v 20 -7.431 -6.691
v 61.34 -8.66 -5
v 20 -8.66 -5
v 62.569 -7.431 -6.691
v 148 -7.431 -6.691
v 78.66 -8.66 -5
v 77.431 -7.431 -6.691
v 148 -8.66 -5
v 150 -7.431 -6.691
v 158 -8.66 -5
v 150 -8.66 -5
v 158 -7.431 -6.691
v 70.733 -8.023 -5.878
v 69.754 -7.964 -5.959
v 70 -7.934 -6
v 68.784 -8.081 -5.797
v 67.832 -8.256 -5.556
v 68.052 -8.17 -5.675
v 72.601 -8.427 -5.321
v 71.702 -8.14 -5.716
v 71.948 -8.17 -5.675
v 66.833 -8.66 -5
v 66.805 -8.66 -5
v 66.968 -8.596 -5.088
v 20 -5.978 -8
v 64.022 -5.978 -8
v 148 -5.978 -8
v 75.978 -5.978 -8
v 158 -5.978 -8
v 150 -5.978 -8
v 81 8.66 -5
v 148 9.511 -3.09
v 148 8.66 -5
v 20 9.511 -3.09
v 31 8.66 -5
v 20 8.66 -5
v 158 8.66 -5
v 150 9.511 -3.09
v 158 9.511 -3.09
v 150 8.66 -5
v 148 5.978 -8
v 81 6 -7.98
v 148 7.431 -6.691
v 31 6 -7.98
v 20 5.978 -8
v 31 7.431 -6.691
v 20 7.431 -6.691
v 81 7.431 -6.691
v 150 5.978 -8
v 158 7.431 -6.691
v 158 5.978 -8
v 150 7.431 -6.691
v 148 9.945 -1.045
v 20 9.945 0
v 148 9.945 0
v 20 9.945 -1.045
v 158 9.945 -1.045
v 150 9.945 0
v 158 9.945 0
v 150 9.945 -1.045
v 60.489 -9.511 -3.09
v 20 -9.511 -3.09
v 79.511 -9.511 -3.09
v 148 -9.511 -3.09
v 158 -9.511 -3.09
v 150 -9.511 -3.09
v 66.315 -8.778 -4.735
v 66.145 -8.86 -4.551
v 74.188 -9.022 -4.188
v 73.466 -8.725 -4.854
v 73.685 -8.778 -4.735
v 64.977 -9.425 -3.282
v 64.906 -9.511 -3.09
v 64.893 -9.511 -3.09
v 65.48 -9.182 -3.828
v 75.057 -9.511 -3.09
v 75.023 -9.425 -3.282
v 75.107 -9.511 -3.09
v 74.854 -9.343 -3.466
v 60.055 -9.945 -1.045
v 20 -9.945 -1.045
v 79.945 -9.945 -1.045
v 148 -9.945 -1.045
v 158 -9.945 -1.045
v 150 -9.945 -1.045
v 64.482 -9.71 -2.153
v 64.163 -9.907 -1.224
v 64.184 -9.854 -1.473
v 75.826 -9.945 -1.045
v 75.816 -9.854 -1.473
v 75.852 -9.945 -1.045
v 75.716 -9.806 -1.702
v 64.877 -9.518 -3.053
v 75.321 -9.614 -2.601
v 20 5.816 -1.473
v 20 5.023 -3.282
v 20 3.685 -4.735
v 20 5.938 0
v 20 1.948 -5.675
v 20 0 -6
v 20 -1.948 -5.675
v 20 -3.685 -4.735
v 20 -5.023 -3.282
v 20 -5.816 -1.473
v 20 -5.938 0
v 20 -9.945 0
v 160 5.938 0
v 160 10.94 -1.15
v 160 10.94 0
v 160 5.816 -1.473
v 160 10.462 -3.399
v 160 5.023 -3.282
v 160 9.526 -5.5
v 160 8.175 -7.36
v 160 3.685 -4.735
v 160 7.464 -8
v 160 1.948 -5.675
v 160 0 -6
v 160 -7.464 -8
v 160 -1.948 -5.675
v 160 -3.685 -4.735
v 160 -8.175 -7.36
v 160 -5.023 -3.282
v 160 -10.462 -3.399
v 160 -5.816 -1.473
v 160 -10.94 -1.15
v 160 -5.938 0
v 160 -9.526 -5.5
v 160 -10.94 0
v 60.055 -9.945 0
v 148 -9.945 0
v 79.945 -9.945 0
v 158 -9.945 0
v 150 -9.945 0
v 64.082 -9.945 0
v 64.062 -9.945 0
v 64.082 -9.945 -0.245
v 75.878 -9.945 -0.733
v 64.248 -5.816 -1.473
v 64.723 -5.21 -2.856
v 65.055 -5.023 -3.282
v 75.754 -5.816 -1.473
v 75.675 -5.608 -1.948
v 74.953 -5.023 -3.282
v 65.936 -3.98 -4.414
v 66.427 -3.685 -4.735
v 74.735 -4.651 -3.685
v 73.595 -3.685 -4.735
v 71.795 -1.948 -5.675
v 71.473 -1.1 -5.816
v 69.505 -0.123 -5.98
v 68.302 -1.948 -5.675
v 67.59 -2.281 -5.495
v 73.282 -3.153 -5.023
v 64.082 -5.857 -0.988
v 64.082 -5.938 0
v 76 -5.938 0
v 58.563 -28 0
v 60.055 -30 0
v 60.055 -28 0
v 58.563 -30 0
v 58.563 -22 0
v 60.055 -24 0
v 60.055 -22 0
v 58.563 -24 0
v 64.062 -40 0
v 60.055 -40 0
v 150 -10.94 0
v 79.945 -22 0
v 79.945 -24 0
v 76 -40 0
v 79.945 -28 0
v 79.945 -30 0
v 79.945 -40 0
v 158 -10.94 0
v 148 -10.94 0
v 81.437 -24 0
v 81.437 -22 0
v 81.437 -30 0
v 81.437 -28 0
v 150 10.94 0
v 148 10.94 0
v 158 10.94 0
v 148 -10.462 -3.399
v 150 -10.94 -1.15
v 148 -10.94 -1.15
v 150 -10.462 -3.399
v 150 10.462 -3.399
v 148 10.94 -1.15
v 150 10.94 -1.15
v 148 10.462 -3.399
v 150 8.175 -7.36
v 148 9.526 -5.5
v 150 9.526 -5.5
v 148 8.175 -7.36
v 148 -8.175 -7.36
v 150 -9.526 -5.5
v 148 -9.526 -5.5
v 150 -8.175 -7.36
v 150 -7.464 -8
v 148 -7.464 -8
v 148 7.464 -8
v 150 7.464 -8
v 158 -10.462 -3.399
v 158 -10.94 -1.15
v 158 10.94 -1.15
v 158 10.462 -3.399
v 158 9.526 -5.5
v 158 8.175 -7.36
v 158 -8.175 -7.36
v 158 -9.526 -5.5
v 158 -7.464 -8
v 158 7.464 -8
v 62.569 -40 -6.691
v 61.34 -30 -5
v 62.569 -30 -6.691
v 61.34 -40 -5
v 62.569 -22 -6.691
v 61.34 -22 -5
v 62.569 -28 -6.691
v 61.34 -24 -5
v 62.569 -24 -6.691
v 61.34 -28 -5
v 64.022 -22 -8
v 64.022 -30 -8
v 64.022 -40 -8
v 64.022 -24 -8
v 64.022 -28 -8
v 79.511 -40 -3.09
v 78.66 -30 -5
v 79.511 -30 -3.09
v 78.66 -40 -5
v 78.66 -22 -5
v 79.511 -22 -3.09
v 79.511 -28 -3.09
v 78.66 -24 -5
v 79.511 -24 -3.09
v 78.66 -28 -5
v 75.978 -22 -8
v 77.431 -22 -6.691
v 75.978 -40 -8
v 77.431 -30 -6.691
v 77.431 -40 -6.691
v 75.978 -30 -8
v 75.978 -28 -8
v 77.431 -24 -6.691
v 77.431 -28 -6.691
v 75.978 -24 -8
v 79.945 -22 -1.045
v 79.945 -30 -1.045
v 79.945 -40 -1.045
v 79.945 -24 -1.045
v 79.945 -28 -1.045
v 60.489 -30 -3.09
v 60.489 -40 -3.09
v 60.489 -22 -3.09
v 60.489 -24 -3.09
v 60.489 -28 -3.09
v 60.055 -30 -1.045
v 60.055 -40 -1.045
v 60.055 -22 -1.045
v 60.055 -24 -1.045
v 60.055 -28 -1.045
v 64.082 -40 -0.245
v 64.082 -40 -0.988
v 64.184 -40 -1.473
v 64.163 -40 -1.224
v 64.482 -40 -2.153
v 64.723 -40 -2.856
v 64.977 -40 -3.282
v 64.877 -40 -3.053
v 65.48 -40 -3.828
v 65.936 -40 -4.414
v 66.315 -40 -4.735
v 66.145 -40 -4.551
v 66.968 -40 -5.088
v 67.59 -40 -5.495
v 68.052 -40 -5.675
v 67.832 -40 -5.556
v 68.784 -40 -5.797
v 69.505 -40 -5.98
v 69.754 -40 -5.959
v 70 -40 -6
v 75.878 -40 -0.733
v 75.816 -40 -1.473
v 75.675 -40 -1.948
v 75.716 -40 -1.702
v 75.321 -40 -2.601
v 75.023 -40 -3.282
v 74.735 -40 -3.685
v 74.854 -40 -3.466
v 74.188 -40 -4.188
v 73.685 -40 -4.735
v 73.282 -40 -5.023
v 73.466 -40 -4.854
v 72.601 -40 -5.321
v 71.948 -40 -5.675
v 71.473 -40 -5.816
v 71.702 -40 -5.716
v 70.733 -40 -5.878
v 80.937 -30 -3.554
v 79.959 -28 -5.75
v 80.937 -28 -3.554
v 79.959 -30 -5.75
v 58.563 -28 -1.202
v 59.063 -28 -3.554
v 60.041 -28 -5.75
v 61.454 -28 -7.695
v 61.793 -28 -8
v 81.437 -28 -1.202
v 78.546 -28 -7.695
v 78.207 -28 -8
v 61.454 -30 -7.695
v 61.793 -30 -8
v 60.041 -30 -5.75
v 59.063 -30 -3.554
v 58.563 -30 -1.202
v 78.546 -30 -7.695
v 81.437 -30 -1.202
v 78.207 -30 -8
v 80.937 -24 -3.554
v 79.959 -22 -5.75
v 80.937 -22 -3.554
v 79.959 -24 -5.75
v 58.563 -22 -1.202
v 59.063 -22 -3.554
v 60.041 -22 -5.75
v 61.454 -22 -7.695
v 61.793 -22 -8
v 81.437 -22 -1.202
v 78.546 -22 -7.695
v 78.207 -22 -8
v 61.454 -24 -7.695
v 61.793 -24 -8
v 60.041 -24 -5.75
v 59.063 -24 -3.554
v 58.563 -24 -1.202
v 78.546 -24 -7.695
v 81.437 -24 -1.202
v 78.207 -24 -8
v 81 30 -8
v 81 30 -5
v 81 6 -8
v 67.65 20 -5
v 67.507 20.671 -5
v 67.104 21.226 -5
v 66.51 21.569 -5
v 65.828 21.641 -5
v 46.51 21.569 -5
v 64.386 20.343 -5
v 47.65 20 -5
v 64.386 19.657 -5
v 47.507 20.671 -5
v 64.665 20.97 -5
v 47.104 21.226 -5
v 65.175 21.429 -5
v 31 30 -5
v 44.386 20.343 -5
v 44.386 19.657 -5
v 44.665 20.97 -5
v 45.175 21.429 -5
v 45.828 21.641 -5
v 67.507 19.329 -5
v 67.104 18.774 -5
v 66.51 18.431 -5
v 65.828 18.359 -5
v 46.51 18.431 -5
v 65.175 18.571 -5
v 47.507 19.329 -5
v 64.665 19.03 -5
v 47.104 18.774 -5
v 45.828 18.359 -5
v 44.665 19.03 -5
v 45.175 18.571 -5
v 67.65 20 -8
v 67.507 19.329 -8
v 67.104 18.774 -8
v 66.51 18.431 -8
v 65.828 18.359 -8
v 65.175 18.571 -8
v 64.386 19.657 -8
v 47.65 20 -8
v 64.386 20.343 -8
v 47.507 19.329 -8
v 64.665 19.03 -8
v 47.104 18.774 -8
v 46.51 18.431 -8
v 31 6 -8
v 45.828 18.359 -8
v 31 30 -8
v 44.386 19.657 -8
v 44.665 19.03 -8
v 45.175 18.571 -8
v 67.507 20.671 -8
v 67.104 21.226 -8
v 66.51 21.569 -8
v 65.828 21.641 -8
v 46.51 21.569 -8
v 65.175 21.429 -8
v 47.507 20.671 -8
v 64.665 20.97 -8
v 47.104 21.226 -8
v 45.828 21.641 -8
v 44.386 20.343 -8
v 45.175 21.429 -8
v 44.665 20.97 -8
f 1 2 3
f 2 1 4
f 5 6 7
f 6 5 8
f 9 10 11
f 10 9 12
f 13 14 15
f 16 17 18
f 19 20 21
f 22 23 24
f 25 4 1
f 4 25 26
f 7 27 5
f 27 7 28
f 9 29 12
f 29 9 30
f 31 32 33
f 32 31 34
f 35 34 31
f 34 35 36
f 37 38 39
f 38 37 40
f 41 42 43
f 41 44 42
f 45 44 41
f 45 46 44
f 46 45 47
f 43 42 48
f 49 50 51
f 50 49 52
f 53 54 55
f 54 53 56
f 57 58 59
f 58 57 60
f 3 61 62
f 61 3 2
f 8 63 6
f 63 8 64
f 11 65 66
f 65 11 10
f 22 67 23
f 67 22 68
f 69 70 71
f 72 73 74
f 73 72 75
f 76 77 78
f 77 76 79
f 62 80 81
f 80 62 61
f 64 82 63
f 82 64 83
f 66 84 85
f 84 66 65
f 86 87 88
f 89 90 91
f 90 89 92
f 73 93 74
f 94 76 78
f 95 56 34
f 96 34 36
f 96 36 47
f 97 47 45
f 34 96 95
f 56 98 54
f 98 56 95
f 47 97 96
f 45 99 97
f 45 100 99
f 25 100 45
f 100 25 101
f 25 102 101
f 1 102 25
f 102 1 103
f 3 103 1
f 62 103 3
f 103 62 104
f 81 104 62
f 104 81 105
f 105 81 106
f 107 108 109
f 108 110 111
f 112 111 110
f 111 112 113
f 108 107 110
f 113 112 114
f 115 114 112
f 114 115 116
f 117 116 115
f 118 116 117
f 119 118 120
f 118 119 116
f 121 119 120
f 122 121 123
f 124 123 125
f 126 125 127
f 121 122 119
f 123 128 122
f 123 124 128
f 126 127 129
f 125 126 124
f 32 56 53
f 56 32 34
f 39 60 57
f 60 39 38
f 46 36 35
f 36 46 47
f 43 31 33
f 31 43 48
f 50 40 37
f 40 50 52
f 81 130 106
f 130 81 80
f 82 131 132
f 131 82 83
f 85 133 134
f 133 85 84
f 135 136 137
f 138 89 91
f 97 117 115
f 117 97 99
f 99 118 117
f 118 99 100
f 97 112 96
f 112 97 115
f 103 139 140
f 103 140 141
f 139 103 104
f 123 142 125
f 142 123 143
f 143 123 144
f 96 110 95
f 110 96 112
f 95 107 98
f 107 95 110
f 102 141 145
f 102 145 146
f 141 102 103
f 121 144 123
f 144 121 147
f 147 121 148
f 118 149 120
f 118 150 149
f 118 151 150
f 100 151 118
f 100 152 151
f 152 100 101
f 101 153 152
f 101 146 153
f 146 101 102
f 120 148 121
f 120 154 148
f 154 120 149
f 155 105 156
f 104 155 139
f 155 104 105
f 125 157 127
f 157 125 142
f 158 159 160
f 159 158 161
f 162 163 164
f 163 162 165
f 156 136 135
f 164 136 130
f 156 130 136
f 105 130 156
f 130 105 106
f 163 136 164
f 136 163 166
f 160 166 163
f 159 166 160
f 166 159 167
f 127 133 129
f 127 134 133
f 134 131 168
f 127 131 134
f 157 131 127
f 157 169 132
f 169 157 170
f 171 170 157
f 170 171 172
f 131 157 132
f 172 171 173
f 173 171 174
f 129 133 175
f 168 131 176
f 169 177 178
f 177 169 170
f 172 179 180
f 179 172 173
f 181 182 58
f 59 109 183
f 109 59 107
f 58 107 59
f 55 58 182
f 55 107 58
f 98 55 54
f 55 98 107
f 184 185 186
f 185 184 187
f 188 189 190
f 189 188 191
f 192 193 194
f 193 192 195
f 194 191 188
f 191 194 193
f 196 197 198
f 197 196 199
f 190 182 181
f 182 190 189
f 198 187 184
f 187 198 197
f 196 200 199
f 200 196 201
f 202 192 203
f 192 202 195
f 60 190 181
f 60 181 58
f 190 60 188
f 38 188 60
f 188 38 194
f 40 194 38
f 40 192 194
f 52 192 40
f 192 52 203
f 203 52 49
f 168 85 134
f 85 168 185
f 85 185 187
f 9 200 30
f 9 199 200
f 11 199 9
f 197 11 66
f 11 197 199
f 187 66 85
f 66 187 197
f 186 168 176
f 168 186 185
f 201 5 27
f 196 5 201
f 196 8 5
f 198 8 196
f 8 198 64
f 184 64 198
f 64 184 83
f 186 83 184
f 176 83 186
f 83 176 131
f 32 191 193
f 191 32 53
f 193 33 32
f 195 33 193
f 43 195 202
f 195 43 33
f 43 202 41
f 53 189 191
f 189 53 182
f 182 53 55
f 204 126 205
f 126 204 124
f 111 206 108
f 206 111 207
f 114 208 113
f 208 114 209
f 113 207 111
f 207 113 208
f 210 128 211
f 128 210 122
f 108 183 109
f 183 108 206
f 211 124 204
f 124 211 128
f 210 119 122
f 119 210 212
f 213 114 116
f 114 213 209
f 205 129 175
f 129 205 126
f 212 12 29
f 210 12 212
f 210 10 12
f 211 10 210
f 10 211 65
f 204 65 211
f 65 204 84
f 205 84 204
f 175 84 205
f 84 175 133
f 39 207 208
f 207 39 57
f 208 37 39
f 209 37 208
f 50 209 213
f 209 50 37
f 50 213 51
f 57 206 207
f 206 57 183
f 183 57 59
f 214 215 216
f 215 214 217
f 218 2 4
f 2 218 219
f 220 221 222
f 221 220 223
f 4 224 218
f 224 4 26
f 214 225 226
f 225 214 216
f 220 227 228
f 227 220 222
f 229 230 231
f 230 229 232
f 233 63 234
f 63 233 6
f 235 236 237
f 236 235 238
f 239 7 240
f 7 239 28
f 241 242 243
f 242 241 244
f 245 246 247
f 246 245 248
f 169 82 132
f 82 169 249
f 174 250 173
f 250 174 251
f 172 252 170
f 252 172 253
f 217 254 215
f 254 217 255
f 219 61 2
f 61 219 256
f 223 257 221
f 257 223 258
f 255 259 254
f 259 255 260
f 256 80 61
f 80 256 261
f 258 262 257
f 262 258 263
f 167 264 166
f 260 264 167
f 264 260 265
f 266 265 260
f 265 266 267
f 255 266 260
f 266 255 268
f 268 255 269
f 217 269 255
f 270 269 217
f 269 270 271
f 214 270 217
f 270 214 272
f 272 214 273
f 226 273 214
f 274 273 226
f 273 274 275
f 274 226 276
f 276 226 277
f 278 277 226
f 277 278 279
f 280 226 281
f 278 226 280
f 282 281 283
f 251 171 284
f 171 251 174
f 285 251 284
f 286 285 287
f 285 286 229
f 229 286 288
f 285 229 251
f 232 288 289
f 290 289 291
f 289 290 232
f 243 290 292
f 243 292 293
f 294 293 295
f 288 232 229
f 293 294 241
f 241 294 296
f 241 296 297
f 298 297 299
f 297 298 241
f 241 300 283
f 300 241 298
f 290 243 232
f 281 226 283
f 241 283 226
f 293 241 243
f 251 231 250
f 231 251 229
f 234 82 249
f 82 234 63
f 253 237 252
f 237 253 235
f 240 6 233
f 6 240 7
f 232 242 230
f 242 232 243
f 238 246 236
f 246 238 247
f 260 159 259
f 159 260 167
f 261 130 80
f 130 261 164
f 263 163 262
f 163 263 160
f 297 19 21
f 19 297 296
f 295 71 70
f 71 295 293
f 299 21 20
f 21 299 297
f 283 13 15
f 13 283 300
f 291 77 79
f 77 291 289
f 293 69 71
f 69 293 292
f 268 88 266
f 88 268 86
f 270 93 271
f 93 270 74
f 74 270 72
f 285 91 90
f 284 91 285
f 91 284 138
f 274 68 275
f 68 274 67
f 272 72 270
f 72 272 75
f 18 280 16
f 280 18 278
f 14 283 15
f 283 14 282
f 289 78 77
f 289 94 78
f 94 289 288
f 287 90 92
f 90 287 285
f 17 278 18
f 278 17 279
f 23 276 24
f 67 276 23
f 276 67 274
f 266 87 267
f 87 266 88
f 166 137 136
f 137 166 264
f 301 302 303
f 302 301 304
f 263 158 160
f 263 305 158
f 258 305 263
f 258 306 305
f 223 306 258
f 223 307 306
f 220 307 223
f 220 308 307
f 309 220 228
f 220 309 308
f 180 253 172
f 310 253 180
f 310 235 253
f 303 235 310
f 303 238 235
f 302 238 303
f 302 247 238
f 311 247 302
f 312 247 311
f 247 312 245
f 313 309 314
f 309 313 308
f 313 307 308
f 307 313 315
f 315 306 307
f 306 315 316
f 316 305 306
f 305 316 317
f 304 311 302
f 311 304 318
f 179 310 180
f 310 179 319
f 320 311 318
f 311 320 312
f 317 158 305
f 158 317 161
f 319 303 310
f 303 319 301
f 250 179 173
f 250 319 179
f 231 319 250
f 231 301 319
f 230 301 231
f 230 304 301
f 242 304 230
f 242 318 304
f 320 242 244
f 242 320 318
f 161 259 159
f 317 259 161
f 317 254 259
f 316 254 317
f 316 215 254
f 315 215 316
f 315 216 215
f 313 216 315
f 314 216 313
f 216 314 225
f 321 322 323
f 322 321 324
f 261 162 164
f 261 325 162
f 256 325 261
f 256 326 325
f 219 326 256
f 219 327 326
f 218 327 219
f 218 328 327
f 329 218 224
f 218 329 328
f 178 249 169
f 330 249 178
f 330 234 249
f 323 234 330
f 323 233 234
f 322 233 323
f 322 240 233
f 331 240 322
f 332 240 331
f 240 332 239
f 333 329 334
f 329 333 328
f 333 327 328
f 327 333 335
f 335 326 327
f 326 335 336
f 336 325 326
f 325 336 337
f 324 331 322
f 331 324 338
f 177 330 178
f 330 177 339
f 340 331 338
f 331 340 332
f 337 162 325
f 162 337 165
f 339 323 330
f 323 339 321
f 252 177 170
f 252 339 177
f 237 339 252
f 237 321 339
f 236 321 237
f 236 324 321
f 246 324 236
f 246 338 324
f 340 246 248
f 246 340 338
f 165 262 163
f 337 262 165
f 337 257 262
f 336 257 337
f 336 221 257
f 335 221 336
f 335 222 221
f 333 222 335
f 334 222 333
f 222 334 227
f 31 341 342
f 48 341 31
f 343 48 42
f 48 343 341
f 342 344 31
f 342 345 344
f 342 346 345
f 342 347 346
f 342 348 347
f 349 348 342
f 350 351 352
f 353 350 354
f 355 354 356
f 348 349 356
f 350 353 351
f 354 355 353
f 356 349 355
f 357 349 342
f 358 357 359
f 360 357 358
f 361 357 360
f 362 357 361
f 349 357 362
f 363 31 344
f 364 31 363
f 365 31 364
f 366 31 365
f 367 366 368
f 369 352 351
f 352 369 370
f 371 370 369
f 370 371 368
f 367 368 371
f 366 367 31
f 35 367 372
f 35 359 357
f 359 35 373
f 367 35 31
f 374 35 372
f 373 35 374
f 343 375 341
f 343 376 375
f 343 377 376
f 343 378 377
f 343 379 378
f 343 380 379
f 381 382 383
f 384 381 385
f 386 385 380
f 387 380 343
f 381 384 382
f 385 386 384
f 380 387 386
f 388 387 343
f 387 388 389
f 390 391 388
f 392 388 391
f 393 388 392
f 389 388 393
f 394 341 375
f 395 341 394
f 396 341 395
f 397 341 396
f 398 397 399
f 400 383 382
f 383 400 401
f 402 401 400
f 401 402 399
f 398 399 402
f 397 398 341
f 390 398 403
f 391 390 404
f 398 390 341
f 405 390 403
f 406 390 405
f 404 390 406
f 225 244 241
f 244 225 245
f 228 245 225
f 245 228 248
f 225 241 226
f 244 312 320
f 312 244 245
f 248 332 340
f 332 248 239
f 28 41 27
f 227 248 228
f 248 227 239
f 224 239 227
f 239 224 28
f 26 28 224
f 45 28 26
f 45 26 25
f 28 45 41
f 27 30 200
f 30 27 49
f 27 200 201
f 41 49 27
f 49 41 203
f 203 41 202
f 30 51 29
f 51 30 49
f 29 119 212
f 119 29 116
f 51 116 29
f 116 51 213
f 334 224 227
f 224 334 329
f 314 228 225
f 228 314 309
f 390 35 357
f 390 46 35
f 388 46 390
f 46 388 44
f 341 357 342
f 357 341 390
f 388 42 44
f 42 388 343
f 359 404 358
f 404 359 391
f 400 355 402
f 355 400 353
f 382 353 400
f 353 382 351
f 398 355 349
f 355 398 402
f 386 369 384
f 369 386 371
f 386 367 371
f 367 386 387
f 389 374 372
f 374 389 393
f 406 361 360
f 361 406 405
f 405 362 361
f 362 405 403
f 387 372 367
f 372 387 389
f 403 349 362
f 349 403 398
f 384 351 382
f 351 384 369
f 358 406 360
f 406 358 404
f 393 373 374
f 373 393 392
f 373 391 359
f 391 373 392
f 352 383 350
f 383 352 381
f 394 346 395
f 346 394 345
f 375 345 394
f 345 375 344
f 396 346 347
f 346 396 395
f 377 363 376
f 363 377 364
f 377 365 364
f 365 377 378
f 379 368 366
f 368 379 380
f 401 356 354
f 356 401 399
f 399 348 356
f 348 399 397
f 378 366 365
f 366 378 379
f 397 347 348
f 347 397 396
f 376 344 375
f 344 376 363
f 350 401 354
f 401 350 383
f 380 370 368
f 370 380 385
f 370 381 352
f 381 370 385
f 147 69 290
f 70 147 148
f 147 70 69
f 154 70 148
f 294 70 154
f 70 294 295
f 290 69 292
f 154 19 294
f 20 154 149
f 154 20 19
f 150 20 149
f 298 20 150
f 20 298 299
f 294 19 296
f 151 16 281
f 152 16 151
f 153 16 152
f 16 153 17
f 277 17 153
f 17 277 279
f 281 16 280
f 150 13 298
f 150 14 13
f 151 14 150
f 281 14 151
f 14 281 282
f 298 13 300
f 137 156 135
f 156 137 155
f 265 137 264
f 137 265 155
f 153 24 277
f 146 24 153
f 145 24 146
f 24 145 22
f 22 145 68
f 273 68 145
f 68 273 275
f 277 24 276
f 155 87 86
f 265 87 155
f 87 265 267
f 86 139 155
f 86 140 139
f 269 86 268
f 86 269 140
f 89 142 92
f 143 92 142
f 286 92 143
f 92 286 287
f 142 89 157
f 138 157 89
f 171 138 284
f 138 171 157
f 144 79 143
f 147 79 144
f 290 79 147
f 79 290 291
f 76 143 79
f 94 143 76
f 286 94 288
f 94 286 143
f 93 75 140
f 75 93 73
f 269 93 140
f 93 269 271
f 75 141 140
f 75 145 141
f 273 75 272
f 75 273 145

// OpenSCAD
// file: ../lib/common_wire_mount.scad
/* Common code for wiring mounts. See top_wire_mount.scad and 
 * bottom_wire_mount.scad for the model.
 * Copyright 2021 Alex Volkov <alex@flamy.ca>
 * License: Attribution-ShareAlike 4.0 International (CC BY-SA)
 * https://creativecommons.org/licenses/by-sa/4.0/
 *
 * Version 1.0 2021-04-10 Initial publication
 */


m3_bolt_d = 3.3;

module cable_mount(cable_len, out_d, in_d){
    rotate([0, 90, 0 ]){
    difference(){
        cylinder(d=out_d, h=cable_len);
        cylinder(d=in_d, h=cable_len);
        translate([-out_d/2, 0, cable_len/2])
            cube([out_d, out_d, cable_len], center=true);
        }
    }
}


module plate_mount_top(y_offset, thickness=2){
    difference(){
        translate([-5, 0, 0]){
            cube([50, 25, thickness]);
            cube([15, 7, thickness*2]);
            translate([35, 0, 0, ])
                cube([15, 7, thickness*2]);
        }
        translate([10, y_offset, 0])
            cylinder(d=m3_bolt_d, h=10, $fn=15);
        translate([30, y_offset, 0])
            cylinder(d=m3_bolt_d, h=10, $fn=15);
    }
    
}

module plate_mount(y_offset, thickness=2){
    difference(){
        translate([-5, 0, 0]) cube([50, 24, thickness]);
        translate([10, y_offset, 0])
            cylinder(d=m3_bolt_d, h=10, $fn=15);
        translate([30, y_offset, 0])
            cylinder(d=m3_bolt_d, h=10, $fn=15);
    }
    
}
// main file
/* Bottom wire mount for MKS GEN 1.4 for wiring heated bed and power cables
 * Copyright 2021 Alex Volkov <alex@flamy.ca>
 * License: Attribution-ShareAlike 4.0 International (CC BY-SA)
 * https://creativecommons.org/licenses/by-sa/4.0/
 *
 * Version 1.0 2021-04-10 Initial publication
 */
 
include <../lib/common_wire_mount.scad>



module bottom_wire_holder(){
    inner_pipe_d = 12;
    outer_d = 20;
    vert_pipe_offset = 70;
    vert_pipe_len = 40;
    heated_bed_connector = 160;
    heated_bed_conn_offset = 20;
    bottom_shave_offset = 2;
    difference(){
        union(){
            translate([heated_bed_conn_offset, 0, 0])
                cable_mount(
                    heated_bed_connector - heated_bed_conn_offset,
                    outer_d,
                    inner_pipe_d);
            translate([heated_bed_connector - 12, 0, 0])
                cable_mount(2, outer_d+2, inner_pipe_d);
            translate([heated_bed_connector - 2 , 0, 0])
                cable_mount(2, outer_d+2, inner_pipe_d);
            // vertical pipe #1
            translate([vert_pipe_offset, 0 , 0]){
                rotate([0,0,270]){
                    cable_mount(vert_pipe_len, outer_d , inner_pipe_d);
                    translate([28, 0, 0])
                        cable_mount(2, outer_d + 3, inner_pipe_d + 5);
                    translate([22, 0, 0])
                        cable_mount(2, outer_d + 3, inner_pipe_d + 5);
                }
            }
            translate([36, 6, -outer_d/2 + 2])
                plate_mount(14, 3);
        }
        // horizontal cutout
        rotate([0, 90, 0 ])
            cylinder(d=inner_pipe_d, h=heated_bed_connector);
        // vertical pipe cutout #1
        translate([vert_pipe_offset, 0, 0])
            rotate([90, 0, 0 ])
                cylinder(d=inner_pipe_d, h=vert_pipe_len);
        //shave off bottom
        
        translate([0, -70, -outer_d + bottom_shave_offset])
            cube([heated_bed_connector, 100, 10]);
        
    }
}

bottom_wire_holder();
